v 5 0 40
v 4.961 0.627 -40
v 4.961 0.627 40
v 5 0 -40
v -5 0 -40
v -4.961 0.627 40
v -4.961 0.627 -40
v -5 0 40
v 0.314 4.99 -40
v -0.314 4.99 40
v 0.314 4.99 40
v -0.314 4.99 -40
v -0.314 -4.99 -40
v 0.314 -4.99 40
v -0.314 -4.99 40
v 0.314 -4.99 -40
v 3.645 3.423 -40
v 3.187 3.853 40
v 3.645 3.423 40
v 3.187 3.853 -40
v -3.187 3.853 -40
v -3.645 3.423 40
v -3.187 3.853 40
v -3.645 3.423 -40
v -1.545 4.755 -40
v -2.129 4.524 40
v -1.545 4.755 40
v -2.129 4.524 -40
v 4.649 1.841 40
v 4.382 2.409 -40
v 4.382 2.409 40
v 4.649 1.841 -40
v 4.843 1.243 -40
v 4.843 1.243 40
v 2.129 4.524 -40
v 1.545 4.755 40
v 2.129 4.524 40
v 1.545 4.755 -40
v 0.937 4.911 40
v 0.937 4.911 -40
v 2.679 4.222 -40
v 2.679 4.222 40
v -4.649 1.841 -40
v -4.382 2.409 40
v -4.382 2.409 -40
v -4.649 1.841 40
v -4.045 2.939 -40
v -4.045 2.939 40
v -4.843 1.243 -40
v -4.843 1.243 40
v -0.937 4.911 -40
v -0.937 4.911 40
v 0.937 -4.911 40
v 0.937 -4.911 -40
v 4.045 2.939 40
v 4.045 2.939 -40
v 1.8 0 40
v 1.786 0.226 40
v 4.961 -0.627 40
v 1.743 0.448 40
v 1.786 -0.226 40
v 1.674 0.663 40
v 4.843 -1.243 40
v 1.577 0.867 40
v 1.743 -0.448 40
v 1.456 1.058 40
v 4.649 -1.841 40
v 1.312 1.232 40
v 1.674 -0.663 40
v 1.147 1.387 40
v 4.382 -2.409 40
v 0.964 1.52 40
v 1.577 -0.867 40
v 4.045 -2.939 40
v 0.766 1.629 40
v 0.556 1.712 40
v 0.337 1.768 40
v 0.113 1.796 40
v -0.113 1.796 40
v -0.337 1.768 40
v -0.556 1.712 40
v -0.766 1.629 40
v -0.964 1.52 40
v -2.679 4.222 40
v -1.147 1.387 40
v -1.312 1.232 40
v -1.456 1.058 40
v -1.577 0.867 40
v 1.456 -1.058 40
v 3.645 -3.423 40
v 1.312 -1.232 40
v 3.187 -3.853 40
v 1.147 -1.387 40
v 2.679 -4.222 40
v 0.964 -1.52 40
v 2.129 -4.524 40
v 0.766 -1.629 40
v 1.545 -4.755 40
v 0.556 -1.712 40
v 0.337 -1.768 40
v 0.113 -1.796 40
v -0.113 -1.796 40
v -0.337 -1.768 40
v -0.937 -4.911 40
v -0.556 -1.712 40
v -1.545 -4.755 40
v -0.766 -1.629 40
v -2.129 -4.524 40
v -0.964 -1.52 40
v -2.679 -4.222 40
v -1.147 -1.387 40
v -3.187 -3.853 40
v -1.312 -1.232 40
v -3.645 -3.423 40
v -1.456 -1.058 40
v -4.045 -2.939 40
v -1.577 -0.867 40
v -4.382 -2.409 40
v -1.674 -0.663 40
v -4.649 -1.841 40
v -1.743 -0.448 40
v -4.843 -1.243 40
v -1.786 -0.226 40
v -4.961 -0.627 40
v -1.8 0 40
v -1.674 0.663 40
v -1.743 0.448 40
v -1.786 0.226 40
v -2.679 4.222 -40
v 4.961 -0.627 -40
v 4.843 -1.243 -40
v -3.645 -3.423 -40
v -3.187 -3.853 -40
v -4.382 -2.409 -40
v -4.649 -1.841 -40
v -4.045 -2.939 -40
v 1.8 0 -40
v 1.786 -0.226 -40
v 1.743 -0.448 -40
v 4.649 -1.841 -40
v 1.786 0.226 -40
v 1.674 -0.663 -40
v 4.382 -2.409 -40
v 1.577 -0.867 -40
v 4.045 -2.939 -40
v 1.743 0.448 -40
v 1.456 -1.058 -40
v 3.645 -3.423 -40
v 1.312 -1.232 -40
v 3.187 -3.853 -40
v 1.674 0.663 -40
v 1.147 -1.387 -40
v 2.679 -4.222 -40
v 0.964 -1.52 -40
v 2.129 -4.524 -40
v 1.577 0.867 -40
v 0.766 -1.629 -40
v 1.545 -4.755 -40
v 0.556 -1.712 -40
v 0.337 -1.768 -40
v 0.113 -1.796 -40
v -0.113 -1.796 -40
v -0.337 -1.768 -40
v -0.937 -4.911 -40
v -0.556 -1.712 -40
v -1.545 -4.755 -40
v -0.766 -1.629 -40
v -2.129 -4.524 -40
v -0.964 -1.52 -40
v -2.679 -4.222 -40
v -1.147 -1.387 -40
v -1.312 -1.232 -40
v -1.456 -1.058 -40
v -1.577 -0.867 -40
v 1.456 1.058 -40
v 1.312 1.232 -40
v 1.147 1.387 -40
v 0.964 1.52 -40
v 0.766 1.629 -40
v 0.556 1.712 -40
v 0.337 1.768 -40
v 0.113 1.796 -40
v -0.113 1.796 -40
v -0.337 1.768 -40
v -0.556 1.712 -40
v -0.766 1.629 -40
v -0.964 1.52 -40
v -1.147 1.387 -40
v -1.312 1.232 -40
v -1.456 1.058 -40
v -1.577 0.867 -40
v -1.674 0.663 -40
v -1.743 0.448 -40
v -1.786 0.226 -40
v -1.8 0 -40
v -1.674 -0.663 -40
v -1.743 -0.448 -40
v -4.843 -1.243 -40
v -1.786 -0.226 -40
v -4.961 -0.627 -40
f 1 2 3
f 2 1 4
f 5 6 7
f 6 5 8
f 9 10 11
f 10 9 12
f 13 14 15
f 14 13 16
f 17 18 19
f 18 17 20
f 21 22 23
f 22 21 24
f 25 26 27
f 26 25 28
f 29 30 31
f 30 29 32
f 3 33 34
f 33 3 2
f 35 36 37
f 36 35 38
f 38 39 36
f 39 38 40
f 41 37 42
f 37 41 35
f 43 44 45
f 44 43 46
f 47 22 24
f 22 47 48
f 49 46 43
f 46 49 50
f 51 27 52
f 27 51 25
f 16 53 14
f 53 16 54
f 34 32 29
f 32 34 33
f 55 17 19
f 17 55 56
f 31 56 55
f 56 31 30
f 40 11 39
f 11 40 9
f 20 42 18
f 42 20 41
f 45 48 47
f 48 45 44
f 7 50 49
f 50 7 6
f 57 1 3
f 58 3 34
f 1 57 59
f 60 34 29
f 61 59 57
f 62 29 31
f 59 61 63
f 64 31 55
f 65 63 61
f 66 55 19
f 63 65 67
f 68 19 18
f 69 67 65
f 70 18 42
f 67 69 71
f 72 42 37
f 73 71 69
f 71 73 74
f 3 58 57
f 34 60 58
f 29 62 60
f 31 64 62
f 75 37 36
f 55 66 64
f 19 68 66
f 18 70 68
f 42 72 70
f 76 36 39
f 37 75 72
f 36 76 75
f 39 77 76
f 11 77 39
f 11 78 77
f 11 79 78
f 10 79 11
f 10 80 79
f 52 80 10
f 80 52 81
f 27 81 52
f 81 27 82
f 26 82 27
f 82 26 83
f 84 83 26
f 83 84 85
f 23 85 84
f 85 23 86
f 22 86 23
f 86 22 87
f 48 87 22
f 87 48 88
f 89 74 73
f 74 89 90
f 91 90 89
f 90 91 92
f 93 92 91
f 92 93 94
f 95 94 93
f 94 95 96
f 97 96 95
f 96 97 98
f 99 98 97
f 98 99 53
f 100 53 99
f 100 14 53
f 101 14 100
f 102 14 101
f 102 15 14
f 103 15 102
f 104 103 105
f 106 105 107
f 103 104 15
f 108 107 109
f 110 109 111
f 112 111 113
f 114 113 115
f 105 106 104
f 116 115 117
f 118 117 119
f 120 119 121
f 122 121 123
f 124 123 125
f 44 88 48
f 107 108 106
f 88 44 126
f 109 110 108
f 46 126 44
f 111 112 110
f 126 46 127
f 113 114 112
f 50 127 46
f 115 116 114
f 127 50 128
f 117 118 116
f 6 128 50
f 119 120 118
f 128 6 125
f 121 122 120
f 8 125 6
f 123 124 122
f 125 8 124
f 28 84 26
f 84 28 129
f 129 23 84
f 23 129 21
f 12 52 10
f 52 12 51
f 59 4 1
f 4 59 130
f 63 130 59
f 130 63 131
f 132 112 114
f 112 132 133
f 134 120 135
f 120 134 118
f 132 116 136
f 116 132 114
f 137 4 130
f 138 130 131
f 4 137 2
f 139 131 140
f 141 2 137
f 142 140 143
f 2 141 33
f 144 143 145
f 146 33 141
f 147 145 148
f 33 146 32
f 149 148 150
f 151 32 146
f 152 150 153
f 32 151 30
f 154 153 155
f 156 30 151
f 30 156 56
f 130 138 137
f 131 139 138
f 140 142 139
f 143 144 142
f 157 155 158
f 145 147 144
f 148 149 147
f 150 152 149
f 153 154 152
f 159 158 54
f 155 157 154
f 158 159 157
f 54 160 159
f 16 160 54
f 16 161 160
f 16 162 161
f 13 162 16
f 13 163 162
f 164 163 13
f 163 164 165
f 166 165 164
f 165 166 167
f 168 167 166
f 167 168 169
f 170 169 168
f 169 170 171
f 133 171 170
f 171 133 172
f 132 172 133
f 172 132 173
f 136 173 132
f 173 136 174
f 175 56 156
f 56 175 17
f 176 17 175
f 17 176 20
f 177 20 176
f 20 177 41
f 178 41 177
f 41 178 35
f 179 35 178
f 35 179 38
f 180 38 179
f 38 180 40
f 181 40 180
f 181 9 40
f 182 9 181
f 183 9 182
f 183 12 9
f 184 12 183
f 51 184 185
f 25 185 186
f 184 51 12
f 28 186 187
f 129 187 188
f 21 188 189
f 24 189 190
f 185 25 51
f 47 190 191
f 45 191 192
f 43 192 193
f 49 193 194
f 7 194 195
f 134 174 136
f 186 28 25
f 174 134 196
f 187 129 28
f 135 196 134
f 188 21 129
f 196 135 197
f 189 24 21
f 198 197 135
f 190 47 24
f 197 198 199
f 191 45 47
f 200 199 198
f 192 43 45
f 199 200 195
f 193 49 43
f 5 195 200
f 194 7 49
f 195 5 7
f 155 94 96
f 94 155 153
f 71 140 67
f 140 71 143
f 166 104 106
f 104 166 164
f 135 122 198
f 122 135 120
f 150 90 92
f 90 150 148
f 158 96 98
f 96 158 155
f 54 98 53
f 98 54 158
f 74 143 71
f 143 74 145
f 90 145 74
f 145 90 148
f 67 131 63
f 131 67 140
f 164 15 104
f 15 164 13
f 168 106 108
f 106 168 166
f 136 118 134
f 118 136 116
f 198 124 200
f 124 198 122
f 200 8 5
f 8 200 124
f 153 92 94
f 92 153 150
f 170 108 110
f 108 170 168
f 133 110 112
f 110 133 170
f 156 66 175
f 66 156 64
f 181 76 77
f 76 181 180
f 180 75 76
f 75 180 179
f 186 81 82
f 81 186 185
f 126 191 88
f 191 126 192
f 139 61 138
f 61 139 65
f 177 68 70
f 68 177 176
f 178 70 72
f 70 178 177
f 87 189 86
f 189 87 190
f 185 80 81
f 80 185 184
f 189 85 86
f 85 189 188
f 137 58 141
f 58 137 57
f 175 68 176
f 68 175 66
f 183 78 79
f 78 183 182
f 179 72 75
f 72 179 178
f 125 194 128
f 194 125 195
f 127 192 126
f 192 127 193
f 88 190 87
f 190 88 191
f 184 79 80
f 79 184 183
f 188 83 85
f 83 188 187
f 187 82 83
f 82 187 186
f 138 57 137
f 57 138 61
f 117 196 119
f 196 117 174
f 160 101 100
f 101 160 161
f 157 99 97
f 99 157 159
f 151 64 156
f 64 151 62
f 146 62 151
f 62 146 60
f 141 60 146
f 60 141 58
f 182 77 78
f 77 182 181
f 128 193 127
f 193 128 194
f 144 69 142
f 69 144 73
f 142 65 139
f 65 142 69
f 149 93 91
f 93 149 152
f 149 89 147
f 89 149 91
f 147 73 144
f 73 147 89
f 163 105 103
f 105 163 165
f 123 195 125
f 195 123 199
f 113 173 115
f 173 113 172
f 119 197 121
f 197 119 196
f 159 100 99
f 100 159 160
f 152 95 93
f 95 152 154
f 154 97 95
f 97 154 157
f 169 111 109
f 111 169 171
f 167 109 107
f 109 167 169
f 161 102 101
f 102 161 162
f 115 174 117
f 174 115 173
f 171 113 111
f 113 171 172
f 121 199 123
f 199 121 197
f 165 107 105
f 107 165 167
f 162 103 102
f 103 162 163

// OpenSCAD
$fn = 50;


difference() {
	union() {
		translate(v = [0, 0, -40.0000000000]) {
			cylinder(h = 80, r = 5.0000000000);
		}
	}
	union() {
		translate(v = [0, 0, -100.0000000000]) {
			cylinder(h = 200, r = 1.8000000000);
		}
	}
}
